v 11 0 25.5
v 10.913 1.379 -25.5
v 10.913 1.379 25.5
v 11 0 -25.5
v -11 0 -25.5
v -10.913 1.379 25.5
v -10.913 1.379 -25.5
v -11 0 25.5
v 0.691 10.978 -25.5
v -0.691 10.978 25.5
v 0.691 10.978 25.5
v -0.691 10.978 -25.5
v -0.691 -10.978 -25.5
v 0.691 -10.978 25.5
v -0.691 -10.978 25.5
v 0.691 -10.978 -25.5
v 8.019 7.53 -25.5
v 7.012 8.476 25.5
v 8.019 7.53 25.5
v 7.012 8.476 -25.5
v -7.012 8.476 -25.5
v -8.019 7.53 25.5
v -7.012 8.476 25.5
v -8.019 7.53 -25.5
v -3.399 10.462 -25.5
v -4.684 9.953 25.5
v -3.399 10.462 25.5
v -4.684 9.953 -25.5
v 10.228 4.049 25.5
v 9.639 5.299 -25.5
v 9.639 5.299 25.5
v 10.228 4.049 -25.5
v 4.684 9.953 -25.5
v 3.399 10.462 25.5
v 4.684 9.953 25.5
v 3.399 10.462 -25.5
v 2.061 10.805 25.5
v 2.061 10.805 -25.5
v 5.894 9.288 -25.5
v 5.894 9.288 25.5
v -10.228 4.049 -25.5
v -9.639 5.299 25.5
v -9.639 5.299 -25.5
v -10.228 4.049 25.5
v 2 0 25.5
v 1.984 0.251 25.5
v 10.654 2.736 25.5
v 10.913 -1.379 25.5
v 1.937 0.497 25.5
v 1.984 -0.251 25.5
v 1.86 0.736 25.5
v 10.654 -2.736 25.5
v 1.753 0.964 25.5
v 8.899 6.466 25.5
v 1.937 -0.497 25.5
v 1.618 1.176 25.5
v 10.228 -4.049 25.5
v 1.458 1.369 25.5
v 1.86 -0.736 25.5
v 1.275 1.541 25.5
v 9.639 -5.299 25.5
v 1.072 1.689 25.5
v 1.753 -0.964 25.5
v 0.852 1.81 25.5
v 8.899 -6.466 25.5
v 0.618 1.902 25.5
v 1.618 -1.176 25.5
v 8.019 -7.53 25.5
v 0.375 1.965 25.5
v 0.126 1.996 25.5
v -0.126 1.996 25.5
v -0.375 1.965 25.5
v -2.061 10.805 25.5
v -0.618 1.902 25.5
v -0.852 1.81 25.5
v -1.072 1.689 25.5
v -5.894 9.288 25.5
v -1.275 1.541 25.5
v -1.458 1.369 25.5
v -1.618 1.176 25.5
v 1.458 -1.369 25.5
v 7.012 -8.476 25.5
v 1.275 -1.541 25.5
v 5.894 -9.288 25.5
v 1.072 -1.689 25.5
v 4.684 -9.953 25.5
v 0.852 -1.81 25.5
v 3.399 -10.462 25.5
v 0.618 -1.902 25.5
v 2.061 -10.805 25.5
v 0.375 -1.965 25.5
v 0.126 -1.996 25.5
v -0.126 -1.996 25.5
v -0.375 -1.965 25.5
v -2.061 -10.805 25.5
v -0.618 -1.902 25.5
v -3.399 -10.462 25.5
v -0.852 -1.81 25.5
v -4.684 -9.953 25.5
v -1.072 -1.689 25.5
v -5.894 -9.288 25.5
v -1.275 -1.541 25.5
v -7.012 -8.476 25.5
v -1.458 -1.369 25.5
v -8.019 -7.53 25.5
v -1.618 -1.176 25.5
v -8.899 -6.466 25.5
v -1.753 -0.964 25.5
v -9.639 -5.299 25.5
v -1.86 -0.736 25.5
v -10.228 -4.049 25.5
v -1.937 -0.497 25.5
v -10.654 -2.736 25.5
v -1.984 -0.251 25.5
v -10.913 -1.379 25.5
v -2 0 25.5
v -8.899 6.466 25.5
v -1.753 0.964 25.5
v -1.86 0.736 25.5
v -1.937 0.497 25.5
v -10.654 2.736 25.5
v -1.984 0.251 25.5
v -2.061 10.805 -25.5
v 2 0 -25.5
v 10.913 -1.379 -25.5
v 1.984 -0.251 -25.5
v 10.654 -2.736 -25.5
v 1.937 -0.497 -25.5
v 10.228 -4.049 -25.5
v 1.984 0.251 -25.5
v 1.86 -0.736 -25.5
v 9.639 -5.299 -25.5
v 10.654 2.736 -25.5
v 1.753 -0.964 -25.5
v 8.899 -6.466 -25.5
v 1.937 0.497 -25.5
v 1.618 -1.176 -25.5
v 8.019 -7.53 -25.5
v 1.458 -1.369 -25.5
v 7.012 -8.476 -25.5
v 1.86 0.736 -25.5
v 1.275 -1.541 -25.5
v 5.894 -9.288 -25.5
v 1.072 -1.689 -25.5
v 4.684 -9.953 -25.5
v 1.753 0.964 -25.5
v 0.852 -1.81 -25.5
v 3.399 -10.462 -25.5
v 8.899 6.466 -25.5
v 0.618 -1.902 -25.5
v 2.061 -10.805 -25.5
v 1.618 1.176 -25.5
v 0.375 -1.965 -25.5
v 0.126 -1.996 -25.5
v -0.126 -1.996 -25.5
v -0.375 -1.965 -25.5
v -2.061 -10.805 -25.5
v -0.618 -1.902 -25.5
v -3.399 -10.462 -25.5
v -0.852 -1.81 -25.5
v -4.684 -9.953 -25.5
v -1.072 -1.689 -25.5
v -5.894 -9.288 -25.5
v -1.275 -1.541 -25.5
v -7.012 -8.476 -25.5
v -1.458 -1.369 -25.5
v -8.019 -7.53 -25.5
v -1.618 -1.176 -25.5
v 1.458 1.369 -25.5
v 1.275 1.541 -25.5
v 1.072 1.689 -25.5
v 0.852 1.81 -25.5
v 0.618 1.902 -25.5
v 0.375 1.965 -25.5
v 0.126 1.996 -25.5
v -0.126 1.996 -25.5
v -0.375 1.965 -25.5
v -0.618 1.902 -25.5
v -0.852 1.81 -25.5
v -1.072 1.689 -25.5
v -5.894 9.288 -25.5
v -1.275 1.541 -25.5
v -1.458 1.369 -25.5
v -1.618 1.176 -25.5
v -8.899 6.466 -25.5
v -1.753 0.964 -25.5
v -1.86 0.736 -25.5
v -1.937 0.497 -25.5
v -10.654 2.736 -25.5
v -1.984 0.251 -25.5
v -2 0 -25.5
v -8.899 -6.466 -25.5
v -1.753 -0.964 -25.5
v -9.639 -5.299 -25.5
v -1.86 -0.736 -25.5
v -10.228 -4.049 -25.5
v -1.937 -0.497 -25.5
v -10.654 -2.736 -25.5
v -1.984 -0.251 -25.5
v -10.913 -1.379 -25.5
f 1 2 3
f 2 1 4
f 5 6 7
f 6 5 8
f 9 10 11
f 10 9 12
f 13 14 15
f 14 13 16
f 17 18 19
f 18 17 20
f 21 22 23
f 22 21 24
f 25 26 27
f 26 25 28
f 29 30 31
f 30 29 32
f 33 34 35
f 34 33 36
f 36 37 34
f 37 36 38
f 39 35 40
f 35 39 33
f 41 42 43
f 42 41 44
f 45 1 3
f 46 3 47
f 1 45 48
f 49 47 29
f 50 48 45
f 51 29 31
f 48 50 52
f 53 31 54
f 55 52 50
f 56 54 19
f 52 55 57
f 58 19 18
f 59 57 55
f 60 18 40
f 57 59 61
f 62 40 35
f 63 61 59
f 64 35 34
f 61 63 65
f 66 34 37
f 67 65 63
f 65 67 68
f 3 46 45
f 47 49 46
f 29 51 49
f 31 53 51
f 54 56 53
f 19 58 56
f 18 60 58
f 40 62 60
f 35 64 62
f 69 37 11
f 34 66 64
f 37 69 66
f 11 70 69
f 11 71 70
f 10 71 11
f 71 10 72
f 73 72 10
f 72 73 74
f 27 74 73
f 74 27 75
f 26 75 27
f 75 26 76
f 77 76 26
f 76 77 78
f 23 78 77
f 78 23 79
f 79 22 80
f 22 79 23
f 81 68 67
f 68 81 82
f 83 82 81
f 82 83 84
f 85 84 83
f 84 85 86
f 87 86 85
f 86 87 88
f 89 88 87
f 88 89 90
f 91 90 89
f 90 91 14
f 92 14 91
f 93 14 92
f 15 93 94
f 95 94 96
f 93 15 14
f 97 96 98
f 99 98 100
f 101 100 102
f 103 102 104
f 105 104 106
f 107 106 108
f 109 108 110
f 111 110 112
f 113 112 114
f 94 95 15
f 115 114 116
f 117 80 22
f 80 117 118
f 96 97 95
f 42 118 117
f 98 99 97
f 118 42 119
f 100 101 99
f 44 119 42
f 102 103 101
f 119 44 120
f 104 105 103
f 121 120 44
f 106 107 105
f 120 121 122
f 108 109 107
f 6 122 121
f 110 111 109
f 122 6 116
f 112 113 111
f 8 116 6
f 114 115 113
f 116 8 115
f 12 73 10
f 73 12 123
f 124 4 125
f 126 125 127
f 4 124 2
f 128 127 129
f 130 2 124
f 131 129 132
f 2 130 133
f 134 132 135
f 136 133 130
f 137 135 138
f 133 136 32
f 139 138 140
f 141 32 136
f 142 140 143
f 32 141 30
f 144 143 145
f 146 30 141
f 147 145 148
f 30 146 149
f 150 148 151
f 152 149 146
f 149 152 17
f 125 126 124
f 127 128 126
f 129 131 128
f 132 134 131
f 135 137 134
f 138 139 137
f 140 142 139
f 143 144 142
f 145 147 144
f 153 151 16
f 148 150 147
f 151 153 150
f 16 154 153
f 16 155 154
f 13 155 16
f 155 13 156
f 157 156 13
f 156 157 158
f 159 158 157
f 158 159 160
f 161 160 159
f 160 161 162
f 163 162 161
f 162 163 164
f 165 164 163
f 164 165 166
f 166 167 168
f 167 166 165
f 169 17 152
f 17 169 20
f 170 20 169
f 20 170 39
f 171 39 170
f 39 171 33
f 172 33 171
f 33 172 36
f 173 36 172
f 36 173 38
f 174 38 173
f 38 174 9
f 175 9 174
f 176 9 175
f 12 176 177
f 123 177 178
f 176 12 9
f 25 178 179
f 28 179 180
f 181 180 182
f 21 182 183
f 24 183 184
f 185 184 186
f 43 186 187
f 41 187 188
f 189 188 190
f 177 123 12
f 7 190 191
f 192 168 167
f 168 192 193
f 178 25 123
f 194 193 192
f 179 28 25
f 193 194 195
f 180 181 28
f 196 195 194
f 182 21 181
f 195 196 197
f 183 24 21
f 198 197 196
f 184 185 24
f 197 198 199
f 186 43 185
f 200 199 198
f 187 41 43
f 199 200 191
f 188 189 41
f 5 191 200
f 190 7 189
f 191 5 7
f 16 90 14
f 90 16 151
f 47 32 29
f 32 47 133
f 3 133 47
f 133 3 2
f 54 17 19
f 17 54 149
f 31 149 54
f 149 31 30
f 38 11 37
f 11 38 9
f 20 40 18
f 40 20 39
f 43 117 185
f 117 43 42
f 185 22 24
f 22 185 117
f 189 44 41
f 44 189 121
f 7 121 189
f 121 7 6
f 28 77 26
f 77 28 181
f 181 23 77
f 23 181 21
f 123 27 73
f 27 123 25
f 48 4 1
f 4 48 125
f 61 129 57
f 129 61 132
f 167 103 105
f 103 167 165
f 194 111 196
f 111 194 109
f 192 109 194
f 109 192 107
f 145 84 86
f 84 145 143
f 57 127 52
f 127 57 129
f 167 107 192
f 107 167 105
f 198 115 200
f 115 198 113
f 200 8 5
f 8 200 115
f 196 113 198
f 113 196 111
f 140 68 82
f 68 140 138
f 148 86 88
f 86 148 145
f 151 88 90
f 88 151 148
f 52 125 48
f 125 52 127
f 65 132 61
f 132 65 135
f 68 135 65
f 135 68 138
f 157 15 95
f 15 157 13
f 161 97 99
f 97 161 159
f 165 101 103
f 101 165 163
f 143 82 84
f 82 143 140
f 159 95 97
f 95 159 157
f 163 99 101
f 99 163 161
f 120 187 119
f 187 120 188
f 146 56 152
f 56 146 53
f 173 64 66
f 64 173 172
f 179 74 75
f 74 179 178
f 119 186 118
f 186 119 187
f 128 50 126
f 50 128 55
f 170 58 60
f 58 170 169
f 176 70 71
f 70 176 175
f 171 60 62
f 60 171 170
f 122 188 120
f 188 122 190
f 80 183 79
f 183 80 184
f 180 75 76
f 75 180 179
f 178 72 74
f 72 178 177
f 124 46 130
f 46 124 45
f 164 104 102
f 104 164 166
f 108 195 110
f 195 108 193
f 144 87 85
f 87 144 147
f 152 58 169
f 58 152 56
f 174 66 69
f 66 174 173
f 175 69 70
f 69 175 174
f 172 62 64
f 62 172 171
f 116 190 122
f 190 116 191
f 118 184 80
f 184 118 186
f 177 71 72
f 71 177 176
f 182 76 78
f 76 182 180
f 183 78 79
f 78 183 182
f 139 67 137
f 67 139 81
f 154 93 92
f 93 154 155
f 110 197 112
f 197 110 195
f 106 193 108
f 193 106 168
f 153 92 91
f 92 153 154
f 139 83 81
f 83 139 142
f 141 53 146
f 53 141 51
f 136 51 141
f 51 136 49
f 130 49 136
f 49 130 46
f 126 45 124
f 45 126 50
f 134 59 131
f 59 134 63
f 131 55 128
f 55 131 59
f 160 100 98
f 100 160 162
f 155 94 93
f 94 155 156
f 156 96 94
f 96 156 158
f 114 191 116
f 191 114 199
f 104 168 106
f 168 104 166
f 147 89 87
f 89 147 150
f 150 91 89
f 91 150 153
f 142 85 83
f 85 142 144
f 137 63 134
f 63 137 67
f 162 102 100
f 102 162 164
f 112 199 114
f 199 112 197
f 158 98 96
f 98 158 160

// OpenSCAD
$fn = 50;


difference() {
	union() {
		translate(v = [0, 0, -25.5000000000]) {
			cylinder(h = 51, r = 11.0000000000);
		}
	}
	union() {
		translate(v = [0, 0, -100.0000000000]) {
			cylinder(h = 200, r = 2);
		}
	}
}
